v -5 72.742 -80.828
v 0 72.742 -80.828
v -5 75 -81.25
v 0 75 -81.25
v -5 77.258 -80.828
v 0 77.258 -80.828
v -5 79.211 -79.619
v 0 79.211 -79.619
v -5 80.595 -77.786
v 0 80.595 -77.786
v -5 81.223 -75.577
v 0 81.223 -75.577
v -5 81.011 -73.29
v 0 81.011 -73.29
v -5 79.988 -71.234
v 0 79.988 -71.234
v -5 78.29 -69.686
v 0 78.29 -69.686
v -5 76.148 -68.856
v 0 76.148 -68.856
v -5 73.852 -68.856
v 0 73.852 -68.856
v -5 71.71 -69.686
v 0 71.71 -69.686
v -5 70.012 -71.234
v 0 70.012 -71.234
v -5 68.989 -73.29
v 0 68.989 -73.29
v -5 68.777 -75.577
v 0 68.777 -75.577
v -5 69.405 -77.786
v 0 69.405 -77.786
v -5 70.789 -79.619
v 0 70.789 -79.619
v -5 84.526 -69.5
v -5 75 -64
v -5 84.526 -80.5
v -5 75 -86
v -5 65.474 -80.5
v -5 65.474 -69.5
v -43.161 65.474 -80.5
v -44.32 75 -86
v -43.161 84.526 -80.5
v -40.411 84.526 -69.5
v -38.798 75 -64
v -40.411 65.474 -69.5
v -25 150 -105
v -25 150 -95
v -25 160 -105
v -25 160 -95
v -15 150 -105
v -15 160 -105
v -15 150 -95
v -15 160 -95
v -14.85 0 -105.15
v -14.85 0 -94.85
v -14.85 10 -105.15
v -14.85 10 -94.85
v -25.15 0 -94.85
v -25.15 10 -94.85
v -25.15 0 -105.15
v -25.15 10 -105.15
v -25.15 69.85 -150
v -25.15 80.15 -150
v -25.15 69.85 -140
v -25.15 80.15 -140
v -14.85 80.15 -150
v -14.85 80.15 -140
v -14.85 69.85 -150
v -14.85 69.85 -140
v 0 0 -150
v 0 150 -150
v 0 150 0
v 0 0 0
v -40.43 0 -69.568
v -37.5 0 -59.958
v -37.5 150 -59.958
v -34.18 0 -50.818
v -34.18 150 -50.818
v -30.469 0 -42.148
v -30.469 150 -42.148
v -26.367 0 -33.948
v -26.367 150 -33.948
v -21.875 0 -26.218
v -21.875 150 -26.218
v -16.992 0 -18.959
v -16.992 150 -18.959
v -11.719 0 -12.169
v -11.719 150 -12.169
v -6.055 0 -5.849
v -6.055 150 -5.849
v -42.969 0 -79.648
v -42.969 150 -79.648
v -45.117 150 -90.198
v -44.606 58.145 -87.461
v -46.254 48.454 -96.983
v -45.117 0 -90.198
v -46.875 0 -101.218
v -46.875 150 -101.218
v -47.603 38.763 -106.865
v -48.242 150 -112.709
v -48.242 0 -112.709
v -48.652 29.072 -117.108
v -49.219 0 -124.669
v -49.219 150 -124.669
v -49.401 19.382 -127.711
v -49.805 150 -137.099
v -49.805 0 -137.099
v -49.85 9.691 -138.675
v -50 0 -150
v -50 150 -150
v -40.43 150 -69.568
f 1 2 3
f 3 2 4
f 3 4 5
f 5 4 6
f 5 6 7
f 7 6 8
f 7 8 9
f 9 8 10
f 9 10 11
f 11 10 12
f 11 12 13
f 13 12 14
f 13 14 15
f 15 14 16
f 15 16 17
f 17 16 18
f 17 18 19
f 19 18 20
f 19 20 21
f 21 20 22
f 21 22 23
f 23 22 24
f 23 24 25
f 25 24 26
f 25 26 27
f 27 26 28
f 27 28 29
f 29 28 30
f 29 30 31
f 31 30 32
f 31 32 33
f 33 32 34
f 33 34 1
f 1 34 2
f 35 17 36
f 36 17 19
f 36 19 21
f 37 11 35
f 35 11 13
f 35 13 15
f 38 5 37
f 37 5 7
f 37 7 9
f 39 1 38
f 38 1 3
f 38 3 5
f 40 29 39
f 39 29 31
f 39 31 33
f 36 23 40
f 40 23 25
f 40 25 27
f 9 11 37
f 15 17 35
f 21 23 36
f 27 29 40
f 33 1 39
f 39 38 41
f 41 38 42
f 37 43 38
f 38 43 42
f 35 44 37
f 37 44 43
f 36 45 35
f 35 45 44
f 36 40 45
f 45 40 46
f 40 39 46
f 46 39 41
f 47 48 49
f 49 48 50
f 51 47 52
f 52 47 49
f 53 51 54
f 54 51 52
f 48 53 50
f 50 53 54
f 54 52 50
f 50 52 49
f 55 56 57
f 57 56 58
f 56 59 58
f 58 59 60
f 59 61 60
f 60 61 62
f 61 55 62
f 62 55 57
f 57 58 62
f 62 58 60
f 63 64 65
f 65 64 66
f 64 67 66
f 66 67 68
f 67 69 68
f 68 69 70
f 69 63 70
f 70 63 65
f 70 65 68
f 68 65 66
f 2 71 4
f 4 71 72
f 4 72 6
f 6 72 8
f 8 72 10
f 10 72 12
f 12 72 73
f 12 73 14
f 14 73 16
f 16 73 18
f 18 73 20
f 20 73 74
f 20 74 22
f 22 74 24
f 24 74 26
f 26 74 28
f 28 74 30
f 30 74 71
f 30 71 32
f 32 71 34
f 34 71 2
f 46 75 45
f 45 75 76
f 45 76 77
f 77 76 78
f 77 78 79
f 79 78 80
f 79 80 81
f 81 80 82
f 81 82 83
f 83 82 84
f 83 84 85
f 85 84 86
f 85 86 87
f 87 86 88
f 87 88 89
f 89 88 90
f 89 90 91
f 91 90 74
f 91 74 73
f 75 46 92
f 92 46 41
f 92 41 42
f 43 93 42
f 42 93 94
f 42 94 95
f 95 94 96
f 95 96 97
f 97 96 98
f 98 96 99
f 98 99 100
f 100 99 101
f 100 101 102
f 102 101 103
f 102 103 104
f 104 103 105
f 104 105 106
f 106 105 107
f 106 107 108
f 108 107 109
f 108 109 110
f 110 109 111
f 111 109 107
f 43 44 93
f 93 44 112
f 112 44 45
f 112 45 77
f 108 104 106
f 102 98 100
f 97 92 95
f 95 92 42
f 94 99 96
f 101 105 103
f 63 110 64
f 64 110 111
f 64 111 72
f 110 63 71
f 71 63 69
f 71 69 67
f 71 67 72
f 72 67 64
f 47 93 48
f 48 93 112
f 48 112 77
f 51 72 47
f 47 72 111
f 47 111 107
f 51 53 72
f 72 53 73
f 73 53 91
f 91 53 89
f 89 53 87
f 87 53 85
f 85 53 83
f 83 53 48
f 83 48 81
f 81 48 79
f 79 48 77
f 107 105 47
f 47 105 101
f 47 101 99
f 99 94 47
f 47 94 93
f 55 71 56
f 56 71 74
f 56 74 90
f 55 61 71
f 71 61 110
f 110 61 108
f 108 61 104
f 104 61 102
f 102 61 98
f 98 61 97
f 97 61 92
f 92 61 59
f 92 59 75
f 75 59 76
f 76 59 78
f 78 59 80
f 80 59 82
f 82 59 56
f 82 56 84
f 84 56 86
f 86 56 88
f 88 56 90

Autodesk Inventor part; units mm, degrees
ref_plane "YZ Plane" through (0, 0, 0) normal (1, 0, 0) x (0, 1, 0)
ref_plane "XZ Plane" through (0, 0, 0) normal (0, 1, 0) x (-1, 0, 0)
ref_plane "XY Plane" through (0, 0, 0) normal (0, 0, 1) x (1, 0, 0)
sketch "Sketch1" plane through (0, 0, 0) normal (0, 1, 0) x (-1, 0, 0)
  line L0 (0, 0) -> (0, -150)
  line L1 (0, -150) -> (50, -150)
  line L2 (0, 0) -> (50, -44.9152) construction
  line L3 (50, -44.9152) -> (50, -150) construction
  spline S0 degree 2 poles (0, 0) (50, -44.9152) (50, -150) knots 1 1 1 2 2 2
  dimension "d0" = 150
  dimension "d2" = 50
extrude "Extrusion7" add sketch "Sketch1" along normal blind 150
sketch "Sketch5" plane through (0, 0, -150) normal (0, 0, -1) x (-1, 0, 0)
  line L0 (0, 0) -> (0, 150) projected
  line L1 (0, 0) -> (20, 0)
  line L2 (0, 0) -> (50, 0) projected
  line L3 (20, 0) -> (20, 75)
  line L4 (25.15, 80.15) -> (14.85, 80.15)
  line L5 (14.85, 80.15) -> (14.85, 69.85)
  line L6 (14.85, 69.85) -> (25.15, 69.85)
  line L7 (25.15, 69.85) -> (25.15, 80.15)
  line L8 (25.15, 80.15) -> (14.85, 69.85) construction
  line L9 (14.85, 80.15) -> (25.15, 69.85) construction
  dimension "d57" = 20
  dimension "d58" = 75
  dimension "d59" = 10.3
  dimension "d60" = 10.3
extrude "Extrusion8" cut sketch "Sketch5" against normal blind 10
sketch "Sketch6" plane through (0, 0, 0) normal (0, -1, 0) x (1, 0, 0)
  line L0 (0, 0) -> (0, -150) projected
  line L1 (0, -150) -> (-20, -150)
  line L2 (0, -150) -> (-50, -150) projected
  line L3 (-20, -150) -> (-20, -100)
  line L4 (-25.15, -105.15) -> (-14.85, -105.15)
  line L5 (-14.85, -105.15) -> (-14.85, -94.85)
  line L6 (-14.85, -94.85) -> (-25.15, -94.85)
  line L7 (-25.15, -94.85) -> (-25.15, -105.15)
  line L8 (-25.15, -105.15) -> (-14.85, -94.85) construction
  line L9 (-14.85, -105.15) -> (-25.15, -94.85) construction
  dimension "d51" = 20
  dimension "d52" = 50
  dimension "d53" = 10.3
  dimension "d54" = 10.3
extrude "Extrusion9" cut sketch "Sketch6" against normal blind 10
sketch "Sketch7" plane through (0, 150, 0) normal (0, 1, 0) x (1, 0, 0)
  line L0 (0, 150) -> (-50, 150) projected
  line L1 (0, 150) -> (-20, 150)
  line L2 (-20, 150) -> (-20, 100)
  line L3 (-15, 95) -> (-25, 95)
  line L4 (-25, 95) -> (-25, 105)
  line L5 (-25, 105) -> (-15, 105)
  line L6 (-15, 105) -> (-15, 95)
  line L7 (-15, 95) -> (-25, 105) construction
  line L8 (-25, 95) -> (-15, 105) construction
  point P0 (0, 0)
  dimension "d61" = 20
  dimension "d62" = 50
  dimension "d63" = 10
  dimension "d64" = 10
extrude "Extrusion10" add sketch "Sketch7" along normal blind 10
sketch "Sketch8" plane through (0, 0, 0) normal (1, 0, 0) x (0, 0, -1)
  line L0 (0, 0) -> (0, 150) projected
  line L1 (0, 75) -> (75, 75) construction
  line L2 (0, 150) -> (150, 150) projected
  circle A0 centre (75, 75) radius 6.25
  line L3 (75, 75) -> (86, 75)
  line L4 (75, 75) -> (80.5, 84.5263)
  line L5 (75, 75) -> (69.5, 84.5263)
  line L6 (75, 75) -> (64, 75)
  line L7 (75, 75) -> (69.5, 65.4737)
  line L8 (75, 75) -> (80.5, 65.4737)
  line L9 (80.5, 65.4737) -> (86, 75)
  line L10 (80.5, 84.5263) -> (86, 75)
  line L11 (69.5, 84.5263) -> (80.5, 84.5263)
  line L12 (69.5, 84.5263) -> (64, 75)
  line L13 (64, 75) -> (69.5, 65.4737)
  line L14 (80.5, 65.4737) -> (69.5, 65.4737)
  dimension "d67" = 75
  dimension "d69" = 12.5
  dimension "d70" = 11
  dimension "d73" = 360
extrude "Extrusion11" cut sketch "Sketch8" against normal blind 100
extrude "Extrusion12" add sketch "Sketch8" against normal blind 5 contours L3 L9 L8 A0 | A0 L4 L10 L3 | A0 L5 L11 L4 | L8 L14 L7 A0 | A0 L6 L12 L5 | L7 L13 L6 A0
properties part number "3DPrintShapeCorner"
